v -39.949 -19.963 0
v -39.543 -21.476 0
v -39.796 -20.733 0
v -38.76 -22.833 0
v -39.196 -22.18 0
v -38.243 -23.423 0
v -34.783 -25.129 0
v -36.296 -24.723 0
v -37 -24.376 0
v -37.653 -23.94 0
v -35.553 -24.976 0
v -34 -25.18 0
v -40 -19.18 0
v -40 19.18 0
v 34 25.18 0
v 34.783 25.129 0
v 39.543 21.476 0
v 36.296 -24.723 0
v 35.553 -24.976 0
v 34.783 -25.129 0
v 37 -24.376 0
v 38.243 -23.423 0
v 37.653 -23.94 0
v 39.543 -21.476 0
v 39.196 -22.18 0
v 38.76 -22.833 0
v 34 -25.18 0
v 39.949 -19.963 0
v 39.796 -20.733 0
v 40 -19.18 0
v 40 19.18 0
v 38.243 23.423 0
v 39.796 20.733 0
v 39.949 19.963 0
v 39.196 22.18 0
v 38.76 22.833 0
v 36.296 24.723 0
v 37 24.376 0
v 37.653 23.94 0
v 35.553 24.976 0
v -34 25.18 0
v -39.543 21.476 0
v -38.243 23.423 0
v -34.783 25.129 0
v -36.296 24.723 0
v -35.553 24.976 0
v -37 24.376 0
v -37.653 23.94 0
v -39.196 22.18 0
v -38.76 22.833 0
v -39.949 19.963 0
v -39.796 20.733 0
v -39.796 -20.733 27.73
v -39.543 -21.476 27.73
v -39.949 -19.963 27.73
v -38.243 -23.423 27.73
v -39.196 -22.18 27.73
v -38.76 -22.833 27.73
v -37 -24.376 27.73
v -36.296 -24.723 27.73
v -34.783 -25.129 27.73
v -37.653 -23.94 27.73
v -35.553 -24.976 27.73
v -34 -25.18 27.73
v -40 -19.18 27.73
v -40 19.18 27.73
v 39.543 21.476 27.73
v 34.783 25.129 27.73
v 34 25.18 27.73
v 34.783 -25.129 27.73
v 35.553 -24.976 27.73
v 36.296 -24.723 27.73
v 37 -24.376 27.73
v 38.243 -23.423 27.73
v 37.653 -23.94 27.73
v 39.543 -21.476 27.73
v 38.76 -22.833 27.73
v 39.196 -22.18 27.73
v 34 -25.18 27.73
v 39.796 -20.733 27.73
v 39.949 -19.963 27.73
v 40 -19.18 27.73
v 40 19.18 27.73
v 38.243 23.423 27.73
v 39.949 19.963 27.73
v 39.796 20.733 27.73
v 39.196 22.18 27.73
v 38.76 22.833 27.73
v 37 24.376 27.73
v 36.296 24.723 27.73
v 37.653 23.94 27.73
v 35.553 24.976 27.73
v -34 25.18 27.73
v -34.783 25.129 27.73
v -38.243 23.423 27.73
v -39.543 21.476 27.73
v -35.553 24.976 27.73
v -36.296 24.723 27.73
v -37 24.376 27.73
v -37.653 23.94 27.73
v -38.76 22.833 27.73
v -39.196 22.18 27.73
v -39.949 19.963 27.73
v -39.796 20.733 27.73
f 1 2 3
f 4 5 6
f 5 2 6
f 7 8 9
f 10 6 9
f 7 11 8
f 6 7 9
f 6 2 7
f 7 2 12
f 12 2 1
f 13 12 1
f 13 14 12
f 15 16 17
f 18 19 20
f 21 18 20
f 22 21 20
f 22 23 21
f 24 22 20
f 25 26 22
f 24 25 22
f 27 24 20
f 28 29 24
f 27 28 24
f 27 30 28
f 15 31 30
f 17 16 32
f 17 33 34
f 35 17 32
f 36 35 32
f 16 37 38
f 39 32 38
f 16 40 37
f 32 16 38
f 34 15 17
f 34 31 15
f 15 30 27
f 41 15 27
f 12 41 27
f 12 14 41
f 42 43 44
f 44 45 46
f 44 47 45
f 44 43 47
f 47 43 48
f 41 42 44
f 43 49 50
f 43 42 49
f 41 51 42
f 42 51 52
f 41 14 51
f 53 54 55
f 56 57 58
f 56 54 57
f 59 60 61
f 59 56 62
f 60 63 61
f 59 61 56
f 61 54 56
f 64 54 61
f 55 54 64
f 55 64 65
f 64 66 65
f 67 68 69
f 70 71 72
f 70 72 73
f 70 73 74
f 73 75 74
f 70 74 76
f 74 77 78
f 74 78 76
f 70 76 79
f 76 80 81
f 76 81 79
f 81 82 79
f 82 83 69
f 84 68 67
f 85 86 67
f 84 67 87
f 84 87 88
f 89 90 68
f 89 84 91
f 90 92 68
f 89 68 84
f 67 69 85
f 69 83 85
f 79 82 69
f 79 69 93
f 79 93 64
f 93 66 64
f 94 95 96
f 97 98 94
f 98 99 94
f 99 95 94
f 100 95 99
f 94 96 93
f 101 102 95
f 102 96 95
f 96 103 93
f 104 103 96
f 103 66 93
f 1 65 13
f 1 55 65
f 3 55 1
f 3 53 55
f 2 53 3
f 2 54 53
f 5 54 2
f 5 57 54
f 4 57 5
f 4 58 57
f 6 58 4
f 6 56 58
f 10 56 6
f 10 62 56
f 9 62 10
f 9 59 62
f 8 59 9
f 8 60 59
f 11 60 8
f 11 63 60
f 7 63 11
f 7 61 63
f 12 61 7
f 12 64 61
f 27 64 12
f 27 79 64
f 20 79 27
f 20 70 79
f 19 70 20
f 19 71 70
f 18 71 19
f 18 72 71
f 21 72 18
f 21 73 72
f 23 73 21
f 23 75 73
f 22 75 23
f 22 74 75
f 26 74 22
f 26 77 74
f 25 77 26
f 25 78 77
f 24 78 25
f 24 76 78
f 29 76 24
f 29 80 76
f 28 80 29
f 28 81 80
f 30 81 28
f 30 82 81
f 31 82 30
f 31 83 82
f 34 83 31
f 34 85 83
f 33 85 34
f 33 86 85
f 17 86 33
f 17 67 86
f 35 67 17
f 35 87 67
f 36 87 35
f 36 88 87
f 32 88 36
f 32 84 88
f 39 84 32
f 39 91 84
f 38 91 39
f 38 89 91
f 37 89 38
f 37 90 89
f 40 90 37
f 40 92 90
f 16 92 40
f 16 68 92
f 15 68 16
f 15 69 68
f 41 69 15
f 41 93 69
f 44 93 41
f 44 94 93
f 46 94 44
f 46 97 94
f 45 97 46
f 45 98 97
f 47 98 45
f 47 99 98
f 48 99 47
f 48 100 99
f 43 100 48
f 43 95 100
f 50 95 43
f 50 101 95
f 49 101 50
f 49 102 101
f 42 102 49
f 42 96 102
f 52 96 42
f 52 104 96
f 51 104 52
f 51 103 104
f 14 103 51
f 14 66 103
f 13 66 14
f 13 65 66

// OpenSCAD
/* doodle-meta {"version":1,"parameters":{"width":{"label":"Overall width","description":"Changes the body width along X","unit":"mm","feature":"body_width"},"depth":{"label":"Overall depth","description":"Changes the body depth along Y","unit":"mm","feature":"body_depth"},"height":{"label":"Overall height","description":"Changes the body height along Z","unit":"mm","feature":"body_height"},"corner_radius":{"label":"Corner radius","description":"Radius of the vertical corner fillets","unit":"mm","feature":"corner_fillet"}},"features":{"body_width":{"kind":"dimension","axis":"x","label":"Overall width"},"body_depth":{"kind":"dimension","axis":"y","label":"Overall depth"},"body_height":{"kind":"dimension","axis":"z","label":"Overall height"},"corner_fillet":{"kind":"region","label":"Corner fillet","min":[0,0,0],"max":[{"parameter":"corner_radius","scale":1,"offset":0},{"parameter":"corner_radius","scale":1,"offset":0},{"parameter":"height","scale":1,"offset":0}]}}} */

// Parameters
width = 80.0;
depth = 50.36;
height = 27.73;
corner_radius = 6.0;

// Derived sizes (not editable)
$fn = 48;

// Module for a rounded rectangle prism centered at origin in XY, extruded along Z
module rounded_rect_prism(w, d, h, r) {
    // Create a 2D rounded rectangle and extrude it
    // The polygon is defined in XY plane, then extruded along Z
    // We need to place it so the bottom is at Z=0
    translate([0, 0, -h/2]) {
        linear_extrude(height=h) {
            hull() {
                // Four corner circles
                translate([w/2 - r, d/2 - r, 0]) circle(r=r);
                translate([-w/2 + r, d/2 - r, 0]) circle(r=r);
                translate([-w/2 + r, -d/2 + r, 0]) circle(r=r);
                translate([w/2 - r, -d/2 + r, 0]) circle(r=r);
            }
        }
    }
}

// Main design
// Place the solid so its bottom sits on Z=0
translate([0, 0, height/2]) {
    rounded_rect_prism(width, depth, height, corner_radius);
}
